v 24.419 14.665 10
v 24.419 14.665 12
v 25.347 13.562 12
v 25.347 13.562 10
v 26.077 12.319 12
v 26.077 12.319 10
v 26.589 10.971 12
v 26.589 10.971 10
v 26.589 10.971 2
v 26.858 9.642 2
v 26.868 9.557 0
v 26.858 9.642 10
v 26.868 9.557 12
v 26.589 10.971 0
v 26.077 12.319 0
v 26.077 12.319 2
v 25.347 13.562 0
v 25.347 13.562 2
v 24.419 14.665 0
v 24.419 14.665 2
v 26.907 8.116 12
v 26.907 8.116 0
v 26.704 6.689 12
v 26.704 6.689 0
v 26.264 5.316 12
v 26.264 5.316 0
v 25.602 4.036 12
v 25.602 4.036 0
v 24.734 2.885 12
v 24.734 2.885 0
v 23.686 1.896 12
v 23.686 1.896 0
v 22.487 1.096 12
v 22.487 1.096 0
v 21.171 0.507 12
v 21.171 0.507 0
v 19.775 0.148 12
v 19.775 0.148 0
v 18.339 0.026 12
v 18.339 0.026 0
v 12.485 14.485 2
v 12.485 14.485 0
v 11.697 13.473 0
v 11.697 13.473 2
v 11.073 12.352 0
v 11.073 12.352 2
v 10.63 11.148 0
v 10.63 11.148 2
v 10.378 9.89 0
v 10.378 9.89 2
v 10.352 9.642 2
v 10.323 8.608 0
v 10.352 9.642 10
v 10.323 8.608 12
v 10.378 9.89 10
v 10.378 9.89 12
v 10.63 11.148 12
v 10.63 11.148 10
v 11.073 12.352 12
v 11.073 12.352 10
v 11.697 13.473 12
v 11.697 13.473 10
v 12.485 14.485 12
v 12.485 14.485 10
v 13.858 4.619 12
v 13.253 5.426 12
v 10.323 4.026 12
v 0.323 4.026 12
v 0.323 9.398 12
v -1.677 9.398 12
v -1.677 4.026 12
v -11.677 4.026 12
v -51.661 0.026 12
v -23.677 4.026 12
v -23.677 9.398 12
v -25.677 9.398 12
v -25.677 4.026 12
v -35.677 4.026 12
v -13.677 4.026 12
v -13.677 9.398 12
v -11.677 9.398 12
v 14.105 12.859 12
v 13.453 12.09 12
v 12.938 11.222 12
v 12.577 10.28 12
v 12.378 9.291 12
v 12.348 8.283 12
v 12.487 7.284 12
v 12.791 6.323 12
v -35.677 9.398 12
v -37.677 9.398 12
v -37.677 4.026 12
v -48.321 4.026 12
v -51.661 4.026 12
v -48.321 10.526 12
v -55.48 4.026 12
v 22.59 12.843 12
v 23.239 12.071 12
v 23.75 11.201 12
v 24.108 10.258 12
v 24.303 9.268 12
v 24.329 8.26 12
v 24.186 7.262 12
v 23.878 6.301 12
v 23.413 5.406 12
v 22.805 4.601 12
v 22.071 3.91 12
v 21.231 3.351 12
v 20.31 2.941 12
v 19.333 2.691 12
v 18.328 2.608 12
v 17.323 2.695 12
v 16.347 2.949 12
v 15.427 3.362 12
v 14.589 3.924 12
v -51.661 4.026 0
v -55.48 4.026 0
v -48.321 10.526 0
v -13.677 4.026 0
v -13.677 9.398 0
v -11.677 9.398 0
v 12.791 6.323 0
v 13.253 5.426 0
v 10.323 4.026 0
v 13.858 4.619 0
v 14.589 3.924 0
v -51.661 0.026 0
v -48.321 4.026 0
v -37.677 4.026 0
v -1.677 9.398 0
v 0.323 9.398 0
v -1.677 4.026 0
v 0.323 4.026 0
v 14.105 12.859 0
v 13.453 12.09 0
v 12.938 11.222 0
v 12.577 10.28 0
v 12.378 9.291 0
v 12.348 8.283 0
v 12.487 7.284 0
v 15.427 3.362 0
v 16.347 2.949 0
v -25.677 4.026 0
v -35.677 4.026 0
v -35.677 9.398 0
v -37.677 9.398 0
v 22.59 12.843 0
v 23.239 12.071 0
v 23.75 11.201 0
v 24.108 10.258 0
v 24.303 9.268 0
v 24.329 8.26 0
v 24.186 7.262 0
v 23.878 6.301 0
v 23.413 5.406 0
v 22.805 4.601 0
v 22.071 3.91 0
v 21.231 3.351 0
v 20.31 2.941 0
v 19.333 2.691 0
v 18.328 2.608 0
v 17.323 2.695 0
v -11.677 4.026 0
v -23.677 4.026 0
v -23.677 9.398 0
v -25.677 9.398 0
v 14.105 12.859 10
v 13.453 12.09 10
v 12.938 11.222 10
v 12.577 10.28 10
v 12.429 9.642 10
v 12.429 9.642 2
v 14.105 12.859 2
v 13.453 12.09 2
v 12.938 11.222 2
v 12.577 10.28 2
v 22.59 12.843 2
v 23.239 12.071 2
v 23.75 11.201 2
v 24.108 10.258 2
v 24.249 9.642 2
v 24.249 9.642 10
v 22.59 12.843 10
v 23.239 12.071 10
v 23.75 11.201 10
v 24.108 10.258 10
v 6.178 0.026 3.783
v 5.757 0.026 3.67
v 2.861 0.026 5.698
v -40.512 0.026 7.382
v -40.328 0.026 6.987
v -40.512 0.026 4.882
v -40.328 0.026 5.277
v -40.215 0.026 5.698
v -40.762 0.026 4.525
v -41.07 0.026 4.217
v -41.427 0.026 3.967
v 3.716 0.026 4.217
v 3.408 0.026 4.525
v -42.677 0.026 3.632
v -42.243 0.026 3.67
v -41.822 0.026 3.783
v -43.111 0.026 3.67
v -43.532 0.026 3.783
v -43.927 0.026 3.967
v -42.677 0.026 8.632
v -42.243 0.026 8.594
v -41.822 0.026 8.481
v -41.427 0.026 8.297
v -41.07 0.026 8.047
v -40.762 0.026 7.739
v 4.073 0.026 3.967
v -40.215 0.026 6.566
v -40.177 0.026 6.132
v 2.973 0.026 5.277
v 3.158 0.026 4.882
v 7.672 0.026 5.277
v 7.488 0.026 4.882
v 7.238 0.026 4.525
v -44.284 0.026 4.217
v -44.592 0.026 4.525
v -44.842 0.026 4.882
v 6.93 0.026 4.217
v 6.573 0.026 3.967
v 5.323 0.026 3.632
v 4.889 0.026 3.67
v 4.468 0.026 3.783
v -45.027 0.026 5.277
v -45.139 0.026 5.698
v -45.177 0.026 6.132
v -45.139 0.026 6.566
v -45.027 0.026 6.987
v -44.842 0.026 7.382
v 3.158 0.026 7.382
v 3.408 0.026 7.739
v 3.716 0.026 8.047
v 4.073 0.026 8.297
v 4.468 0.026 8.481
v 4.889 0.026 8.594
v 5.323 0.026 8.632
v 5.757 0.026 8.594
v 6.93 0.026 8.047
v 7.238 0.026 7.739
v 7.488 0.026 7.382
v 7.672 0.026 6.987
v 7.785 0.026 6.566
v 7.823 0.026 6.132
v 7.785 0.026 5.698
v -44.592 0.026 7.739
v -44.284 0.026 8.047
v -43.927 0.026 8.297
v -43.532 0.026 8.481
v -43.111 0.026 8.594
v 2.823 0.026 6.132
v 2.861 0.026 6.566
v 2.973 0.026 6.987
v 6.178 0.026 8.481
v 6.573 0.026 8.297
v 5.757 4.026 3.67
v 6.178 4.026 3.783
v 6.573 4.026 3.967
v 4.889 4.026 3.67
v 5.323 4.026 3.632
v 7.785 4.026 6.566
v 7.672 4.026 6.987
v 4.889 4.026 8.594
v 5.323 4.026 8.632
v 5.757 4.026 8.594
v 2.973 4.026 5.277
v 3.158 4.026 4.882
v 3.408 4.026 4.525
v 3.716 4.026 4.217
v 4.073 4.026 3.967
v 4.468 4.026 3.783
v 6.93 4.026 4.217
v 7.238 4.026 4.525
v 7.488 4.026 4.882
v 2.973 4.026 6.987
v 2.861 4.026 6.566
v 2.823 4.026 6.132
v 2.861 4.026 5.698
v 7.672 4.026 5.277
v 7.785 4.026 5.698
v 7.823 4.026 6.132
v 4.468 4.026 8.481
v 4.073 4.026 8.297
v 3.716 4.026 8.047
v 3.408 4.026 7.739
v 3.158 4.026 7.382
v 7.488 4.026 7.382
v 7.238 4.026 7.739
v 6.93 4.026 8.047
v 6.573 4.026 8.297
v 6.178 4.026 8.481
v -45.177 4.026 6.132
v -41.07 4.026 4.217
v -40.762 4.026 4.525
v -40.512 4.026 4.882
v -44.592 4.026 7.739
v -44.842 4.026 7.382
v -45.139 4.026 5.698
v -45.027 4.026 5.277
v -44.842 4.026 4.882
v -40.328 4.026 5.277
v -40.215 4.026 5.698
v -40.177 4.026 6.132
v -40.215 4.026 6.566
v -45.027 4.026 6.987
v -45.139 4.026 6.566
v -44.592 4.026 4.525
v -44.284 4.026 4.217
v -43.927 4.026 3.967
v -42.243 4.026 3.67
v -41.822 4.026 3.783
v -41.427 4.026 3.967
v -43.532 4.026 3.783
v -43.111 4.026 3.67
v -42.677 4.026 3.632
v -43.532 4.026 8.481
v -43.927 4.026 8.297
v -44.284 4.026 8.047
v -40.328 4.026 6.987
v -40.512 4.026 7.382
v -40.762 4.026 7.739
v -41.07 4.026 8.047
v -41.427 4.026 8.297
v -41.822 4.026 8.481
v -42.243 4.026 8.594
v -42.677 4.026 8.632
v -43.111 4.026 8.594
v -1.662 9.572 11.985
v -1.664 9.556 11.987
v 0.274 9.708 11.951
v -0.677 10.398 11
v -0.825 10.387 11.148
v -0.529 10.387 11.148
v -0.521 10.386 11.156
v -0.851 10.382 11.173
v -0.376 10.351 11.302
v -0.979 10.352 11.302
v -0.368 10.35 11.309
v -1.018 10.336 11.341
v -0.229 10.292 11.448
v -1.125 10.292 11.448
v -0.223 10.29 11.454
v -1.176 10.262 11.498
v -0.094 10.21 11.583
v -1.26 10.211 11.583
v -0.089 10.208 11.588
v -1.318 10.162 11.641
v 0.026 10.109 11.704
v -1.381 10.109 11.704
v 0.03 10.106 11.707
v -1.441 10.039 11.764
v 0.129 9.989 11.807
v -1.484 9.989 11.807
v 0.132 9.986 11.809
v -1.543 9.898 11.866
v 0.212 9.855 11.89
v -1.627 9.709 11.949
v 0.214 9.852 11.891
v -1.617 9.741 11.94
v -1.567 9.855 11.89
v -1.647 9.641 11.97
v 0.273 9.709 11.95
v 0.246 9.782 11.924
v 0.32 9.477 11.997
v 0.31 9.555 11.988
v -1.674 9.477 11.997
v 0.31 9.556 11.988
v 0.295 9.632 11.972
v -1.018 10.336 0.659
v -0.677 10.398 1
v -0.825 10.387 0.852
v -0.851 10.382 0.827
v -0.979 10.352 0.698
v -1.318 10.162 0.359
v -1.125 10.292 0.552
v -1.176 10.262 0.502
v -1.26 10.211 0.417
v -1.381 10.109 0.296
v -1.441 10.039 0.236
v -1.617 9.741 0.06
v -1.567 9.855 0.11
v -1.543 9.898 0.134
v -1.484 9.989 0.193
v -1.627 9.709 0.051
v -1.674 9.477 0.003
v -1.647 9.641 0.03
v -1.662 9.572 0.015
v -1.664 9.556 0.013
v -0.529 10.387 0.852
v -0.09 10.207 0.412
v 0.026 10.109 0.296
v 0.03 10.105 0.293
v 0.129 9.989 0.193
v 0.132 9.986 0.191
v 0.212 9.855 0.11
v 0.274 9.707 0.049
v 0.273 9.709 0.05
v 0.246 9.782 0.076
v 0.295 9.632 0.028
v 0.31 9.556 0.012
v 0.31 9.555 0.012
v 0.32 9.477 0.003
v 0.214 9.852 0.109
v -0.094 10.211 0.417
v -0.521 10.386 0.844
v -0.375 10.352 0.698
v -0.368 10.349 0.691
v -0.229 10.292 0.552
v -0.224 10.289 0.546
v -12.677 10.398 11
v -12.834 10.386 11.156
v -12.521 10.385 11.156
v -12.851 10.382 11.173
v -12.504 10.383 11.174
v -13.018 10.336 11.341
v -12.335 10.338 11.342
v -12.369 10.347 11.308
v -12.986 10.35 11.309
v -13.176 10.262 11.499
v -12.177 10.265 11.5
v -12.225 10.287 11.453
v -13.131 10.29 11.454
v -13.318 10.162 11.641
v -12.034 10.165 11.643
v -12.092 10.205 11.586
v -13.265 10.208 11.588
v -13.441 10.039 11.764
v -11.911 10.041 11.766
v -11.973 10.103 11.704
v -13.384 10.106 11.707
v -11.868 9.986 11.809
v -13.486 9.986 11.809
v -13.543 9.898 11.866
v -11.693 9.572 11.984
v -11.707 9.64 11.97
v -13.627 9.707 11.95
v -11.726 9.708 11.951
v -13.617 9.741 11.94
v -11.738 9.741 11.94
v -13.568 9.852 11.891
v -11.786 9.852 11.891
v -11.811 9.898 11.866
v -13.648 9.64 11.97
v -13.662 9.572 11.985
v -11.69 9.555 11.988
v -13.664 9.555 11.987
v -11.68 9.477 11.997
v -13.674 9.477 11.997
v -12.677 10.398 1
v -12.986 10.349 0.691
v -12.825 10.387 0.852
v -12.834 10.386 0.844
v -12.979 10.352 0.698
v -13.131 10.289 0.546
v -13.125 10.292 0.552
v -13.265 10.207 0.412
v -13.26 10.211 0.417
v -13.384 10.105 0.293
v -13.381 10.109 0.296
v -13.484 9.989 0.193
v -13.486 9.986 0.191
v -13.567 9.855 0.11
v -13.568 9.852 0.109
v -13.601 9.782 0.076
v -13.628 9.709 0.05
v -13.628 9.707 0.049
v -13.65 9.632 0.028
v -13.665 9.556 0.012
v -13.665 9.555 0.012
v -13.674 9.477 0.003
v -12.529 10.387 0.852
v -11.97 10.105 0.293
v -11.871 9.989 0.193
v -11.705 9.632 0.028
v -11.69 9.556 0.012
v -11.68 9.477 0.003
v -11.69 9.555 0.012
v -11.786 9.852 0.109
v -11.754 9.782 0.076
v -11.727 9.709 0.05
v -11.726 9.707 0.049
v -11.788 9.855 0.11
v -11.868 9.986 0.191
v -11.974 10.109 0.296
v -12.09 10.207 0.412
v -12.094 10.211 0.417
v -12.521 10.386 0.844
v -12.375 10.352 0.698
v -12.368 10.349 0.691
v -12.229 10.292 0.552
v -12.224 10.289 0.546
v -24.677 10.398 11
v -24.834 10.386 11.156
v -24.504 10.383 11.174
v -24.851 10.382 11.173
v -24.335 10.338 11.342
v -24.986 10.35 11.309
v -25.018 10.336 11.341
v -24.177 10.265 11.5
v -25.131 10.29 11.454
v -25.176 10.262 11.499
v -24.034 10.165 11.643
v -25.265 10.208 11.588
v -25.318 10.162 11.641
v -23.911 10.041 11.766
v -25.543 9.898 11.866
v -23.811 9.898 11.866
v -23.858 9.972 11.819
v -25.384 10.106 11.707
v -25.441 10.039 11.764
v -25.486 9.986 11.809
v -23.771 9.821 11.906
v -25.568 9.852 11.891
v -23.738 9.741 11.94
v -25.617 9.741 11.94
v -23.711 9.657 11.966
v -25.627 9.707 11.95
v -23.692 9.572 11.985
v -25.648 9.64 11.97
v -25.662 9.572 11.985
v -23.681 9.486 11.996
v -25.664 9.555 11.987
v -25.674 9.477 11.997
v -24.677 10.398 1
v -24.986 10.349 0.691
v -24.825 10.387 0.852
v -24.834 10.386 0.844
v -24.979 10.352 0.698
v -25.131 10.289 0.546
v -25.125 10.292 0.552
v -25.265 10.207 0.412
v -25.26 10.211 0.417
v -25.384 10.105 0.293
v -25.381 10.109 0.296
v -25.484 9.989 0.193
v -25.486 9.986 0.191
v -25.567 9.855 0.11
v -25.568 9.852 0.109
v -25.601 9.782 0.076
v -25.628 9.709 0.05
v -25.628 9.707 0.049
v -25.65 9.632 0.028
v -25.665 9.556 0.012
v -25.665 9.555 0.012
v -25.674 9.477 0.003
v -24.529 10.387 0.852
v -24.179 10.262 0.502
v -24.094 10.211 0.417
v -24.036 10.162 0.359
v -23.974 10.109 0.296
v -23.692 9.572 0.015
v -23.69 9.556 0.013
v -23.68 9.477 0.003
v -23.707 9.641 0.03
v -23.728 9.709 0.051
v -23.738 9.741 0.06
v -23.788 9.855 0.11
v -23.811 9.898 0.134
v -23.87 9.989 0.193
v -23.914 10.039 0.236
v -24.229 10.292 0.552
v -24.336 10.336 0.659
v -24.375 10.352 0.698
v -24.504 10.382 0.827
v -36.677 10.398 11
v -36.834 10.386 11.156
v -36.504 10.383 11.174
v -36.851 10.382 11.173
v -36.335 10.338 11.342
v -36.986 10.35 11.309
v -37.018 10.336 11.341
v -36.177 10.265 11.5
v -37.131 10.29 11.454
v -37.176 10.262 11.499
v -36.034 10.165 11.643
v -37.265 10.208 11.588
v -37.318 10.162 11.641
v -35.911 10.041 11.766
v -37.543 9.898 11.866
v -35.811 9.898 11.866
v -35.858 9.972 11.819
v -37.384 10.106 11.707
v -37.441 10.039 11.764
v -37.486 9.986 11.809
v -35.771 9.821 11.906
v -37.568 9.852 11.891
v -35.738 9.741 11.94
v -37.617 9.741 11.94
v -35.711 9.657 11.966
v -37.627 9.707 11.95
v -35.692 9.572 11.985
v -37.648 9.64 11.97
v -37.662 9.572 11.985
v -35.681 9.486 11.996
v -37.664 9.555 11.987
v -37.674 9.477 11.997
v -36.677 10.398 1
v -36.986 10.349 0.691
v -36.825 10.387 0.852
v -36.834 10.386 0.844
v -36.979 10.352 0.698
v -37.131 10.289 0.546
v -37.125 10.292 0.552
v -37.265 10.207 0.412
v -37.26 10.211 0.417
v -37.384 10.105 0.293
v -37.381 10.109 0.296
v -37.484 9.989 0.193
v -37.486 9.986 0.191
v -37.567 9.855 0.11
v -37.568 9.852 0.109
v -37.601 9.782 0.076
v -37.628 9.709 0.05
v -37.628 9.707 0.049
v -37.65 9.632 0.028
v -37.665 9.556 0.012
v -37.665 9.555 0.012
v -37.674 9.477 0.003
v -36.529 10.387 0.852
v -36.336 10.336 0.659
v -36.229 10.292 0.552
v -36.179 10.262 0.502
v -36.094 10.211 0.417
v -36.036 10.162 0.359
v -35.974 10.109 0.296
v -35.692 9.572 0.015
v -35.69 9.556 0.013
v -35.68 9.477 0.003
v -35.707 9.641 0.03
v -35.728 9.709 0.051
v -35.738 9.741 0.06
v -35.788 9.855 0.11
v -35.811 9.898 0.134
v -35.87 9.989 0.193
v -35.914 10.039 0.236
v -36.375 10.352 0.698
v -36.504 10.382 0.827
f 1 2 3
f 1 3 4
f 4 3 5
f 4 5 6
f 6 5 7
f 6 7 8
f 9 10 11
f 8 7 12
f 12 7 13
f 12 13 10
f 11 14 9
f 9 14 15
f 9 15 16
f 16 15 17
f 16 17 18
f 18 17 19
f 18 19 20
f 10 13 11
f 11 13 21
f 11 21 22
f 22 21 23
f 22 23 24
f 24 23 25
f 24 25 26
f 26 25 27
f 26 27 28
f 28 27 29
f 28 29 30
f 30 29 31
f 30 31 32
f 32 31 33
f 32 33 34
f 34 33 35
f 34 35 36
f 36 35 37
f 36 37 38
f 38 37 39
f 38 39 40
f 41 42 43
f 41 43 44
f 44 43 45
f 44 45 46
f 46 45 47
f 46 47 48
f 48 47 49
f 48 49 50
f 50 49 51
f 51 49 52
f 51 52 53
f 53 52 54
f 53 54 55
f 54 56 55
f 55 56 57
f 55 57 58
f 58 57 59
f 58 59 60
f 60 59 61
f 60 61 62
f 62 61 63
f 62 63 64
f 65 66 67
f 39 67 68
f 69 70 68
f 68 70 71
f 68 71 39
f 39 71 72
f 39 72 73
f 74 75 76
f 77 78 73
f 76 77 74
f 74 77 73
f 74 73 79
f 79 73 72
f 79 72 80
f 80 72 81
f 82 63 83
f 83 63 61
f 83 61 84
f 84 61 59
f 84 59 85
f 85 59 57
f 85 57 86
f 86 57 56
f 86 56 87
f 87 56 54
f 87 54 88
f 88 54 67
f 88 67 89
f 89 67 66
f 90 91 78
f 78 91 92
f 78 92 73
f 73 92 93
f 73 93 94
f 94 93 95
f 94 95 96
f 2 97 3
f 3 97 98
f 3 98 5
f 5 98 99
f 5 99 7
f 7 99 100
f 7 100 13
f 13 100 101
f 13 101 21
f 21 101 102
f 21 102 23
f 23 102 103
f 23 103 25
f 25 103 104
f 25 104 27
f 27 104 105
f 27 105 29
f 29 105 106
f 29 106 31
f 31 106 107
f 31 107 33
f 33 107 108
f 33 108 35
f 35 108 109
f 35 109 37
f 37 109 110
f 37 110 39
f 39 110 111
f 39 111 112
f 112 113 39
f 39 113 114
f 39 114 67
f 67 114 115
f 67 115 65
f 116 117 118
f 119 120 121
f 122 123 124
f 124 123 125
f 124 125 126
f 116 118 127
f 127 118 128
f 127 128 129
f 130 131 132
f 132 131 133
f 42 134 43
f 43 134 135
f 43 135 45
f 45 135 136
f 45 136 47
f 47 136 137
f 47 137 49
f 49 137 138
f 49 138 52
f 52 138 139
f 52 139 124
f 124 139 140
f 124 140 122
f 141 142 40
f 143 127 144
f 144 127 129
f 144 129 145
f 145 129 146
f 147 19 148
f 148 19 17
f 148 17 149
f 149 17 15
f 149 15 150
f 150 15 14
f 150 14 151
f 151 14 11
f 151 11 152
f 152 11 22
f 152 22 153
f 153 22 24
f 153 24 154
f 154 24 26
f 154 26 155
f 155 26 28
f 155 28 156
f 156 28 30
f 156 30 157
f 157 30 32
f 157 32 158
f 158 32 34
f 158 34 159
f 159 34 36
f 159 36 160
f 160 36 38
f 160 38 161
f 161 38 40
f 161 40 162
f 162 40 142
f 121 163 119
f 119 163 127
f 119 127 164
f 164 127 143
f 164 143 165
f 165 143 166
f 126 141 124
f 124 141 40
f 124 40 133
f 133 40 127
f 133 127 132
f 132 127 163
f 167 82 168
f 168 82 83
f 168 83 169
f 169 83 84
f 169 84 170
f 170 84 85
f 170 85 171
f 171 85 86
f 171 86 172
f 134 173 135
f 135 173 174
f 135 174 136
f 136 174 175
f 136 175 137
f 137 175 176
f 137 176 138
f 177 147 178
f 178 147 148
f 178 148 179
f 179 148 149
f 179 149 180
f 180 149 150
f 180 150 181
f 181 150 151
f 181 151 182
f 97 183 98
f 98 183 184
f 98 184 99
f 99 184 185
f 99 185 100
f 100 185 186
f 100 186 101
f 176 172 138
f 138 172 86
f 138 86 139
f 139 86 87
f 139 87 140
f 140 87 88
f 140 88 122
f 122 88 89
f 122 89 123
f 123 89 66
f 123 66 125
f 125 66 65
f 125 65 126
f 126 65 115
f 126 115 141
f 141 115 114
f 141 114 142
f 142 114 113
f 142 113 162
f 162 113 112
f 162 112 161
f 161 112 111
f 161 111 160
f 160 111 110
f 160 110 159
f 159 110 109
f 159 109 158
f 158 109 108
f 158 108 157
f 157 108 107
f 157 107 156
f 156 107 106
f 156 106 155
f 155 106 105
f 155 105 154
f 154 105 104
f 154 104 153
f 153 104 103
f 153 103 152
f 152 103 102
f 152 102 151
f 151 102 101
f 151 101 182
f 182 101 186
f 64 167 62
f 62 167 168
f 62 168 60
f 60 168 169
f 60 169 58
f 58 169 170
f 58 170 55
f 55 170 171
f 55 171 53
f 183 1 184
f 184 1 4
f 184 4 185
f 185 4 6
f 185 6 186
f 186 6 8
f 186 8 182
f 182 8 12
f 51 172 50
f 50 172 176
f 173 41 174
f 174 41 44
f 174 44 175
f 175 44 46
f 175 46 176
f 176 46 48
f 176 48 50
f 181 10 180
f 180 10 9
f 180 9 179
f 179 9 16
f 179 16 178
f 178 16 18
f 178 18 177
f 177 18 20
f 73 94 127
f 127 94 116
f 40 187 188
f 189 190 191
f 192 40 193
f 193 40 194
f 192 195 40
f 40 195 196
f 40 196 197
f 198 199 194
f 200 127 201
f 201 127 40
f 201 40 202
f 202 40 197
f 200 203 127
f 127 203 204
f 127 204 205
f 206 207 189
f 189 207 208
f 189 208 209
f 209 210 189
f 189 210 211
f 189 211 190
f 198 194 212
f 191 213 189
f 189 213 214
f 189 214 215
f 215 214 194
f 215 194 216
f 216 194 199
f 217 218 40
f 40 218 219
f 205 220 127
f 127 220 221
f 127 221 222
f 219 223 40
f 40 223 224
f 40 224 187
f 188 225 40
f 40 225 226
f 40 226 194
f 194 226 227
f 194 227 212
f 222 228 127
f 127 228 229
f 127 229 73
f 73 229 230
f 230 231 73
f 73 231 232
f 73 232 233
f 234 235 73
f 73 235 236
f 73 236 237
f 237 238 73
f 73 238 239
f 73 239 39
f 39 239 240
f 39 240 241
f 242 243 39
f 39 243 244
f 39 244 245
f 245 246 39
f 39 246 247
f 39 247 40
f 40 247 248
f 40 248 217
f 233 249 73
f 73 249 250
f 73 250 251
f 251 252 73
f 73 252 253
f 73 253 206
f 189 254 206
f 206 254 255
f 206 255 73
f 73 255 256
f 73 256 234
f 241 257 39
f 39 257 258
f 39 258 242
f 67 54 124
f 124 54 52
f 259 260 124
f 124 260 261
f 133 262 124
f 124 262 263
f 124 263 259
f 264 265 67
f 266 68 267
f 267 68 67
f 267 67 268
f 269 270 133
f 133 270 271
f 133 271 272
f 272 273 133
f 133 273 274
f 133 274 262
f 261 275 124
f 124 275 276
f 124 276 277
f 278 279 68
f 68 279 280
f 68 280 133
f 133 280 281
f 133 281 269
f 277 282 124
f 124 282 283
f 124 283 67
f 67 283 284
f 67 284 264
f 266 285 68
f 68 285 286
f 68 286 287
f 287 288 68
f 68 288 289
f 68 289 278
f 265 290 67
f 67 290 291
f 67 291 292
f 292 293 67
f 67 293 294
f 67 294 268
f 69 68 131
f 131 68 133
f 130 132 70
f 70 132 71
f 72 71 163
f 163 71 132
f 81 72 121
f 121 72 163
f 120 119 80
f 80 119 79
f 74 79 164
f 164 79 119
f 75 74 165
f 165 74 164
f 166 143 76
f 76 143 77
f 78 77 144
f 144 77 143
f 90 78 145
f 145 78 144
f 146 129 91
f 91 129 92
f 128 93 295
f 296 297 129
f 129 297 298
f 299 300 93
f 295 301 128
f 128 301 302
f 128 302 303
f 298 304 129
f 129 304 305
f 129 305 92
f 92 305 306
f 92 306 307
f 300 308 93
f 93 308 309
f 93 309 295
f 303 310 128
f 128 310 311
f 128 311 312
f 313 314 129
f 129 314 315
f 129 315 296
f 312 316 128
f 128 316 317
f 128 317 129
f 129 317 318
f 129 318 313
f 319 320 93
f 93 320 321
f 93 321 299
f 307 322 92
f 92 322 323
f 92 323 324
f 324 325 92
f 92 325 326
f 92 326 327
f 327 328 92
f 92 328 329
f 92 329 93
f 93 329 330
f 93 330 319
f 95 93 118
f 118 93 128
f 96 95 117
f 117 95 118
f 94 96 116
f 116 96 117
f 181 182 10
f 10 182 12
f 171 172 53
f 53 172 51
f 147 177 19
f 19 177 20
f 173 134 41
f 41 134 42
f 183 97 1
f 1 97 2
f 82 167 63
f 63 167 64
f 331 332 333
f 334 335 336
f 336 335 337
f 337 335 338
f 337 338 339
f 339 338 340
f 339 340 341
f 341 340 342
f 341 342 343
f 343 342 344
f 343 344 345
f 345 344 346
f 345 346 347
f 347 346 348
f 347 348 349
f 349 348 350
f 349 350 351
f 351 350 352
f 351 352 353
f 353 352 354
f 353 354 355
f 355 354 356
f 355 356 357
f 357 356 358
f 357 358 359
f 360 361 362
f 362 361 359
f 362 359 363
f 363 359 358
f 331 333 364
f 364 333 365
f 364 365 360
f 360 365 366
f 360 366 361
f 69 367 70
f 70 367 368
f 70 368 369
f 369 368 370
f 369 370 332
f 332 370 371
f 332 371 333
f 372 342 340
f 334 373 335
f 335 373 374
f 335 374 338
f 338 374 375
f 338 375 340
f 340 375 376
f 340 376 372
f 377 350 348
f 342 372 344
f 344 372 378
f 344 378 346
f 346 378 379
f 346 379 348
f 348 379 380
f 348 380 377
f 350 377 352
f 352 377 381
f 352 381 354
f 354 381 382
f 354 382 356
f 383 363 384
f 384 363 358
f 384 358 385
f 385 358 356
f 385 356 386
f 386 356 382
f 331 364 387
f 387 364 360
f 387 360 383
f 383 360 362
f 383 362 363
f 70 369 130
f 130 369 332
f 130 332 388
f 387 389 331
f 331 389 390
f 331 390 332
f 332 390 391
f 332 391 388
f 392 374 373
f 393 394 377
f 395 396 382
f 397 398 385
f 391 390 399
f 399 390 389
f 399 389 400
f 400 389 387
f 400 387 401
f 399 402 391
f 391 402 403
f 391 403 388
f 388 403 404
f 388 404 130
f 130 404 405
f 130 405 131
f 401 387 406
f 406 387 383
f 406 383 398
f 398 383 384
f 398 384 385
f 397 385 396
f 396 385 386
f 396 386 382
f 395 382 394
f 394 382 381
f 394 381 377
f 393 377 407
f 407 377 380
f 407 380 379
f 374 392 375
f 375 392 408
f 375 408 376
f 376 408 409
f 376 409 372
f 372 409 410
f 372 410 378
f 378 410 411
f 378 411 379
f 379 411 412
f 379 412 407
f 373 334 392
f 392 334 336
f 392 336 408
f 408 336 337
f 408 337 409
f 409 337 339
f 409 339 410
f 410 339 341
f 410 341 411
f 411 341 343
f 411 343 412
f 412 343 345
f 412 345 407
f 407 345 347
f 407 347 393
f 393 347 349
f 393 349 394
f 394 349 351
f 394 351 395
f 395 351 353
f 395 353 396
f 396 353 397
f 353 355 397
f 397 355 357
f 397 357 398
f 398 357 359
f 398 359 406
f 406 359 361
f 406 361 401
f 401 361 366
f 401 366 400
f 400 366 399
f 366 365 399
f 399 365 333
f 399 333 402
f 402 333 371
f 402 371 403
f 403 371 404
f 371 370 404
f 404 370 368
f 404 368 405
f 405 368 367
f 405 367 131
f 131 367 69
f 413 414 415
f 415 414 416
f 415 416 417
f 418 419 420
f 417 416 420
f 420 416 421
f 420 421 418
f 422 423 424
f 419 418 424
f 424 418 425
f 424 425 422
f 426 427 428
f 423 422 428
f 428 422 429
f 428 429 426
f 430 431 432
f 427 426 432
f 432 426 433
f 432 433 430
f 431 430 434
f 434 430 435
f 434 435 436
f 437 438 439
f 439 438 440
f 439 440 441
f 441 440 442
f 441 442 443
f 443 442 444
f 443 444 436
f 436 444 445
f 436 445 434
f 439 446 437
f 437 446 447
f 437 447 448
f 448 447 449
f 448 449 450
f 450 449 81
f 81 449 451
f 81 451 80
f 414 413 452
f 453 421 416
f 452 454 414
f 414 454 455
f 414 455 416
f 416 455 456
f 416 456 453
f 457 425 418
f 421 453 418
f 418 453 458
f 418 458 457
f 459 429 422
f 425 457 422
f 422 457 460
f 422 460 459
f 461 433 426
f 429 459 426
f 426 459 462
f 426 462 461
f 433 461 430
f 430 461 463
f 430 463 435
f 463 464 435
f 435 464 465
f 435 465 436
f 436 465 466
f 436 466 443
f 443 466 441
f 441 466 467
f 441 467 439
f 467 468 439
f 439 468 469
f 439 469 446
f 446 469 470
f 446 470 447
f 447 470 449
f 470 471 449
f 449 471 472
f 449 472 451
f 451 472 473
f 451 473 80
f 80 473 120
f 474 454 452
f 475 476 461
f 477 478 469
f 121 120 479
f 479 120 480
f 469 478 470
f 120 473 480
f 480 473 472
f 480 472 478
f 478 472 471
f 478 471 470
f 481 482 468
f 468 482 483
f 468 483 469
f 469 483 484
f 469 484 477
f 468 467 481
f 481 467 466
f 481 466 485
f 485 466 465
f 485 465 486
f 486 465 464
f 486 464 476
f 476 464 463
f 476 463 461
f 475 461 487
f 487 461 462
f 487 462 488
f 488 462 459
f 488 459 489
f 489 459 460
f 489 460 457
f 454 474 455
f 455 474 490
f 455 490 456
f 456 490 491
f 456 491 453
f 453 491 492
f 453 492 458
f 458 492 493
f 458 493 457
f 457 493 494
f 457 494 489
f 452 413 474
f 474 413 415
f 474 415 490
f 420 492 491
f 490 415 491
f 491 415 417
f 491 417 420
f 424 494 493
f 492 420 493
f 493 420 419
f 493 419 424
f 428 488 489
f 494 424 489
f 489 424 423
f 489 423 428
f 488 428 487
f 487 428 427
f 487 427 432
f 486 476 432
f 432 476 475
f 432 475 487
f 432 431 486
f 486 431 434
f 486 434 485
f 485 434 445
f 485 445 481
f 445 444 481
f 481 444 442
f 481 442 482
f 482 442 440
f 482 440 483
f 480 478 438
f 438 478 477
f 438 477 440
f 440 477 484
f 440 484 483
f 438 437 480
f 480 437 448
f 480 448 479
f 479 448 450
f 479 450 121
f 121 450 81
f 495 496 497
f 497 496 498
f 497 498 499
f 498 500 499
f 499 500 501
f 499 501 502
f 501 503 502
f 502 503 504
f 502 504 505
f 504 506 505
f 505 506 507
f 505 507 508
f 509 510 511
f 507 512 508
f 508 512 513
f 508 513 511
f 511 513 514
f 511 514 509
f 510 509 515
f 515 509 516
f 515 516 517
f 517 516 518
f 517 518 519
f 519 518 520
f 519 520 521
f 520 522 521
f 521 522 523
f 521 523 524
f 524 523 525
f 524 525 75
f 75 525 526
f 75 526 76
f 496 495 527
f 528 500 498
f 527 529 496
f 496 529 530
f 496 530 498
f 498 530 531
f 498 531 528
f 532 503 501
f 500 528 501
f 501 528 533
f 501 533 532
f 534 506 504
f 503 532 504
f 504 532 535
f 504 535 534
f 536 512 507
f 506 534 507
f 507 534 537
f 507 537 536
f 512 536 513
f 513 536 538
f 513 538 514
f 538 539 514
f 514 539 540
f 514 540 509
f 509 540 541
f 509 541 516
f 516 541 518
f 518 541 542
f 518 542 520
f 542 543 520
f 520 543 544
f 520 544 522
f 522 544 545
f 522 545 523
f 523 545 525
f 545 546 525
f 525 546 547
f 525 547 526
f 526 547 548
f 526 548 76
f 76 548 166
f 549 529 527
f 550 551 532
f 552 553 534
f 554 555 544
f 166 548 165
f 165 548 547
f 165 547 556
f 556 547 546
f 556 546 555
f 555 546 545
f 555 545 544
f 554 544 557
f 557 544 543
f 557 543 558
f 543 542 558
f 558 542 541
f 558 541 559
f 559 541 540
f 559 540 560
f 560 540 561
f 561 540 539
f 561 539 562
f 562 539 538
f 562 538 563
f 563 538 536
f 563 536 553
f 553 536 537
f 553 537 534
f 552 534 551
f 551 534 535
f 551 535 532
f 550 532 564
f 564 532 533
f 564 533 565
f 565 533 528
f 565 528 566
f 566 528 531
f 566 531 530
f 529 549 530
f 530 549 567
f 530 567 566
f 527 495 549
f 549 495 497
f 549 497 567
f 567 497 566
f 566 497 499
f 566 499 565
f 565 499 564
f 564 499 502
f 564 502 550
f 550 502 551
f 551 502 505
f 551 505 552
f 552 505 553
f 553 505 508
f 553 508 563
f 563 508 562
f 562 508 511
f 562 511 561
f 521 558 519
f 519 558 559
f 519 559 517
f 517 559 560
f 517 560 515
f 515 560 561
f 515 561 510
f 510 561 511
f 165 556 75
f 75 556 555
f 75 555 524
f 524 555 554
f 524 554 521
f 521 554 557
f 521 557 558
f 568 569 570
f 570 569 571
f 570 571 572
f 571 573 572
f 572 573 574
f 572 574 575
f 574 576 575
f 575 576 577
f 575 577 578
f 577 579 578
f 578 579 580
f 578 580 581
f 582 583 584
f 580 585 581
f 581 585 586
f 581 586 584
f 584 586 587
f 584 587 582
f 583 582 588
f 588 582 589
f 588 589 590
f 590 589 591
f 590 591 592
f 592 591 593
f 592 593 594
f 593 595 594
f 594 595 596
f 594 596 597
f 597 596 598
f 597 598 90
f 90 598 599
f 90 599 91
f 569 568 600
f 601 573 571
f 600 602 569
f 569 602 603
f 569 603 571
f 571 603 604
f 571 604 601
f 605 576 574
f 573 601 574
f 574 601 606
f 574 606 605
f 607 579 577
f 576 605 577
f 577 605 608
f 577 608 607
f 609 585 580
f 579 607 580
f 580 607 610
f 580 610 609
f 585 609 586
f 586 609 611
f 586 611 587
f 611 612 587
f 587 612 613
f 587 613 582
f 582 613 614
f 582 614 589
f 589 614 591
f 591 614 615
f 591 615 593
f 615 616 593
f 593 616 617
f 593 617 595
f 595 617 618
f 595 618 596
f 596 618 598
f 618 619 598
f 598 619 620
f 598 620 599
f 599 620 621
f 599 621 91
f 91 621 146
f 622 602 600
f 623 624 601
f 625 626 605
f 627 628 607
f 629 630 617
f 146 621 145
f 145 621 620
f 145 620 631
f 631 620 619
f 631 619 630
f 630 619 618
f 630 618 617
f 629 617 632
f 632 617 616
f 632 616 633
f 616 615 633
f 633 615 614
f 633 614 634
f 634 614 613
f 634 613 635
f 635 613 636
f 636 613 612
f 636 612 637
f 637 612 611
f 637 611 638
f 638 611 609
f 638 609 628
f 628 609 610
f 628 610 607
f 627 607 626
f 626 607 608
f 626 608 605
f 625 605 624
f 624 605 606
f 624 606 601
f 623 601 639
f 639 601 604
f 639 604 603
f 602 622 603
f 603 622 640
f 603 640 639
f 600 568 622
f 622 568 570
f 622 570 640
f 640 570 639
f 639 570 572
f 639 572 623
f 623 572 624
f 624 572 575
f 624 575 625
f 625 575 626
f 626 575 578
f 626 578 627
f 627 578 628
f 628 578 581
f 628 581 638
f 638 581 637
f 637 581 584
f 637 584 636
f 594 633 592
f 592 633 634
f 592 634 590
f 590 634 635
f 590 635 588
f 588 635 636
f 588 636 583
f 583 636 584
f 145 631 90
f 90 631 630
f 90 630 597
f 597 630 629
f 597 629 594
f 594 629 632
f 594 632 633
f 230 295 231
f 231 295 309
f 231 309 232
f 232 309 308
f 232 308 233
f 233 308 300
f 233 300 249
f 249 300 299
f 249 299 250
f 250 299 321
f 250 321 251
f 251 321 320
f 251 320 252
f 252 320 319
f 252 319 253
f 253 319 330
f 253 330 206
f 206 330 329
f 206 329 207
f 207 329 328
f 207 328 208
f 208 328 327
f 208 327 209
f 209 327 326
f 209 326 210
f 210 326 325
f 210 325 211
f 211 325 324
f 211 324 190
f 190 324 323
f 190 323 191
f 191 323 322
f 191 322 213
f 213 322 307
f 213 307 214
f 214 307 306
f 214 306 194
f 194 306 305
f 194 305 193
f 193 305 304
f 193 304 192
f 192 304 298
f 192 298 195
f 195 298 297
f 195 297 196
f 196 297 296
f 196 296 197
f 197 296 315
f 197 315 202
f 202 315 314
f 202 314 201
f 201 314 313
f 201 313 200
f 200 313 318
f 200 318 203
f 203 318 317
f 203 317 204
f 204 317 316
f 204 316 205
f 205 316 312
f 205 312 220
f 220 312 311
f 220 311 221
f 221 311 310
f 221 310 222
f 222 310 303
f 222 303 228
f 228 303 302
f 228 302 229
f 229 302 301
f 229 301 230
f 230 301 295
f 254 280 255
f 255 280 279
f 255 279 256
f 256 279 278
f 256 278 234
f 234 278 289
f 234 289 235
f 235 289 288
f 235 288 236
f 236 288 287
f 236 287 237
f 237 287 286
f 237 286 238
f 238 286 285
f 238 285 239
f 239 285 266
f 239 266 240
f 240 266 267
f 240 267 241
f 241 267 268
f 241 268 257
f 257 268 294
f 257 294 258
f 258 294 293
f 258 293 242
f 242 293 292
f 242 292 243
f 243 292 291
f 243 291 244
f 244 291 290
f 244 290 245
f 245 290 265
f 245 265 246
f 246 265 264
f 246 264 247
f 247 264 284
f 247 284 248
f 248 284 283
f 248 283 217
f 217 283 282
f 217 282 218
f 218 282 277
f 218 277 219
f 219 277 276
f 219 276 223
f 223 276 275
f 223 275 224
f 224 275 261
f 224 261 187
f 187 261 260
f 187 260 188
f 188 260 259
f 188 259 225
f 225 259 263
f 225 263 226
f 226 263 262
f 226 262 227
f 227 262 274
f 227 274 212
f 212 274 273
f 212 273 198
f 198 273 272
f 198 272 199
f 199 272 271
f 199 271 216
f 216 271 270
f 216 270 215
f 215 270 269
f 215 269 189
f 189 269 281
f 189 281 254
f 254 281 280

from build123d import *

# Parameters (mm, degrees)
BOSS_EXTRU_1_DEPTH      = 12
ESQUISSE2_R             = 6
ENL_V_MAT_EXTRU_1_DEPTH = 12
ESQUISSE5_W             = 22.19086736
ESQUISSE5_H             = 9.756409295
ENL_V_MAT_EXTRU_2_DEPTH = 8
ENL_V_MAT_EXTRU_3_DEPTH = 60.309125122
CONG_1_R                = 1
ESQUISSE7_R             = 2.5
ENL_V_MAT_EXTRU_4_DEPTH = 4


with BuildPart() as part:
    # Esquisse1 → Boss.-Extru.1 (new body)
    with BuildSketch(Plane.XY):
        with BuildLine():
            Line((-48.320645407, 10.526434737), (-55.480460412, 4.026434737))
            Line((-55.480460412, 4.026434737), (-51.660830402, 4.026434737))
            Line((-51.660830402, 4.026434737), (-51.660830402, 0.026434737))
            Line((-51.660830402, 0.026434737), (18.339169598, 0.026434737))
            ThreePointArc((18.339169598, 0.026434737), (26.920875662, 8.608140801), (18.339169598, 17.189846865))
            ThreePointArc((18.339169598, 17.189846865), (12.553618084, 14.559253744), (10.32272561, 8.608140801))
            Line((10.32272561, 8.608140801), (10.32272561, 4.026434737))
            Line((10.32272561, 4.026434737), (0.32272561, 4.026434737))
            Line((0.32272561, 4.026434737), (0.32272561, 10.398479958))
            Line((0.32272561, 10.398479958), (-1.67727439, 10.398479958))
            Line((-1.67727439, 10.398479958), (-1.67727439, 4.026434737))
            Line((-1.67727439, 4.026434737), (-11.67727439, 4.026434737))
            Line((-11.67727439, 4.026434737), (-11.67727439, 10.398479958))
            Line((-11.67727439, 10.398479958), (-13.67727439, 10.398479958))
            Line((-13.67727439, 10.398479958), (-13.67727439, 4.026434737))
            Line((-13.67727439, 4.026434737), (-23.67727439, 4.026434737))
            Line((-23.67727439, 4.026434737), (-23.67727439, 10.398479958))
            Line((-23.67727439, 10.398479958), (-25.67727439, 10.398479958))
            Line((-25.67727439, 10.398479958), (-25.67727439, 4.026434737))
            Line((-25.67727439, 4.026434737), (-35.67727439, 4.026434737))
            Line((-35.67727439, 4.026434737), (-35.67727439, 10.398479958))
            Line((-35.67727439, 10.398479958), (-37.67727439, 10.398479958))
            Line((-37.67727439, 10.398479958), (-37.67727439, 4.026434737))
            Line((-37.67727439, 4.026434737), (-44.980460412, 4.026434737))
            Line((-44.980460412, 4.026434737), (-48.320645407, 4.026434737))
            Line((-48.320645407, 4.026434737), (-48.320645407, 10.526434737))
        make_face()
    extrude(amount=BOSS_EXTRU_1_DEPTH)

    # Esquisse2 → Enlèv. mat.-Extru.1 (cut)
    with BuildSketch(Plane.XY.offset(12)):
        with Locations((18.339169598, 8.608140801)):
            Circle(ESQUISSE2_R)
    extrude(amount=-ENL_V_MAT_EXTRU_1_DEPTH, mode=Mode.SUBTRACT)

    # Esquisse5 → Enlèv. mat.-Extru.2 (cut)
    with BuildSketch(Plane.XY.offset(2)):
        with Locations((18.196730475, 14.519832028)):
            Rectangle(ESQUISSE5_W, ESQUISSE5_H)
    extrude(amount=ENL_V_MAT_EXTRU_2_DEPTH, mode=Mode.SUBTRACT)

    # Esquisse6 → Enlèv. mat.-Extru.3 (cut, through all)
    with BuildSketch(Plane.XY):
        Polygon((6.09054696, 20.904289339), (18.339169598, 8.608140801), (30.683028441, 20.904289339), align=None)
    extrude(amount=ENL_V_MAT_EXTRU_3_DEPTH, mode=Mode.SUBTRACT)

    # Congé1
    cong_1_edges = [part.edges().sort_by_distance(p)[0] for p in [
        (-36.67727439, 10.398479958, 0),
        (-0.67727439, 10.398479958, 12),
        (-24.67727439, 10.398479958, 0),
        (-12.67727439, 10.398479958, 0),
        (-0.67727439, 10.398479958, 0),
        (-12.67727439, 10.398479958, 12),
        (-37.67727439, 10.398479958, 6),
        (-35.67727439, 10.398479958, 6),
        (-25.67727439, 10.398479958, 6),
        (-23.67727439, 10.398479958, 6),
        (-13.67727439, 10.398479958, 6),
        (-11.67727439, 10.398479958, 6),
        (-1.67727439, 10.398479958, 6),
        (0.32272561, 10.398479958, 6),
        (-24.67727439, 10.398479958, 12),
        (-36.67727439, 10.398479958, 12),
    ]]
    fillet(cong_1_edges, radius=CONG_1_R - 0.0001)  # a hair under: the kernel refuses the full size

    # Esquisse7 → Enlèv. mat.-Extru.4 (cut)
    with BuildSketch(Plane(origin=(0, 4.026434737, 0), x_dir=(1, 0, 0), z_dir=(0, 1, 0))):
        with Locations(Location((-42.67727439, -6.1321655, 0), (0, 0, 180))):
            Circle(ESQUISSE7_R)
        with Locations(Location((5.32272561, -6.1321655, 0), (0, 0, 180))):
            Circle(ESQUISSE7_R)
    extrude(amount=-ENL_V_MAT_EXTRU_4_DEPTH, mode=Mode.SUBTRACT)


solid = part.part
